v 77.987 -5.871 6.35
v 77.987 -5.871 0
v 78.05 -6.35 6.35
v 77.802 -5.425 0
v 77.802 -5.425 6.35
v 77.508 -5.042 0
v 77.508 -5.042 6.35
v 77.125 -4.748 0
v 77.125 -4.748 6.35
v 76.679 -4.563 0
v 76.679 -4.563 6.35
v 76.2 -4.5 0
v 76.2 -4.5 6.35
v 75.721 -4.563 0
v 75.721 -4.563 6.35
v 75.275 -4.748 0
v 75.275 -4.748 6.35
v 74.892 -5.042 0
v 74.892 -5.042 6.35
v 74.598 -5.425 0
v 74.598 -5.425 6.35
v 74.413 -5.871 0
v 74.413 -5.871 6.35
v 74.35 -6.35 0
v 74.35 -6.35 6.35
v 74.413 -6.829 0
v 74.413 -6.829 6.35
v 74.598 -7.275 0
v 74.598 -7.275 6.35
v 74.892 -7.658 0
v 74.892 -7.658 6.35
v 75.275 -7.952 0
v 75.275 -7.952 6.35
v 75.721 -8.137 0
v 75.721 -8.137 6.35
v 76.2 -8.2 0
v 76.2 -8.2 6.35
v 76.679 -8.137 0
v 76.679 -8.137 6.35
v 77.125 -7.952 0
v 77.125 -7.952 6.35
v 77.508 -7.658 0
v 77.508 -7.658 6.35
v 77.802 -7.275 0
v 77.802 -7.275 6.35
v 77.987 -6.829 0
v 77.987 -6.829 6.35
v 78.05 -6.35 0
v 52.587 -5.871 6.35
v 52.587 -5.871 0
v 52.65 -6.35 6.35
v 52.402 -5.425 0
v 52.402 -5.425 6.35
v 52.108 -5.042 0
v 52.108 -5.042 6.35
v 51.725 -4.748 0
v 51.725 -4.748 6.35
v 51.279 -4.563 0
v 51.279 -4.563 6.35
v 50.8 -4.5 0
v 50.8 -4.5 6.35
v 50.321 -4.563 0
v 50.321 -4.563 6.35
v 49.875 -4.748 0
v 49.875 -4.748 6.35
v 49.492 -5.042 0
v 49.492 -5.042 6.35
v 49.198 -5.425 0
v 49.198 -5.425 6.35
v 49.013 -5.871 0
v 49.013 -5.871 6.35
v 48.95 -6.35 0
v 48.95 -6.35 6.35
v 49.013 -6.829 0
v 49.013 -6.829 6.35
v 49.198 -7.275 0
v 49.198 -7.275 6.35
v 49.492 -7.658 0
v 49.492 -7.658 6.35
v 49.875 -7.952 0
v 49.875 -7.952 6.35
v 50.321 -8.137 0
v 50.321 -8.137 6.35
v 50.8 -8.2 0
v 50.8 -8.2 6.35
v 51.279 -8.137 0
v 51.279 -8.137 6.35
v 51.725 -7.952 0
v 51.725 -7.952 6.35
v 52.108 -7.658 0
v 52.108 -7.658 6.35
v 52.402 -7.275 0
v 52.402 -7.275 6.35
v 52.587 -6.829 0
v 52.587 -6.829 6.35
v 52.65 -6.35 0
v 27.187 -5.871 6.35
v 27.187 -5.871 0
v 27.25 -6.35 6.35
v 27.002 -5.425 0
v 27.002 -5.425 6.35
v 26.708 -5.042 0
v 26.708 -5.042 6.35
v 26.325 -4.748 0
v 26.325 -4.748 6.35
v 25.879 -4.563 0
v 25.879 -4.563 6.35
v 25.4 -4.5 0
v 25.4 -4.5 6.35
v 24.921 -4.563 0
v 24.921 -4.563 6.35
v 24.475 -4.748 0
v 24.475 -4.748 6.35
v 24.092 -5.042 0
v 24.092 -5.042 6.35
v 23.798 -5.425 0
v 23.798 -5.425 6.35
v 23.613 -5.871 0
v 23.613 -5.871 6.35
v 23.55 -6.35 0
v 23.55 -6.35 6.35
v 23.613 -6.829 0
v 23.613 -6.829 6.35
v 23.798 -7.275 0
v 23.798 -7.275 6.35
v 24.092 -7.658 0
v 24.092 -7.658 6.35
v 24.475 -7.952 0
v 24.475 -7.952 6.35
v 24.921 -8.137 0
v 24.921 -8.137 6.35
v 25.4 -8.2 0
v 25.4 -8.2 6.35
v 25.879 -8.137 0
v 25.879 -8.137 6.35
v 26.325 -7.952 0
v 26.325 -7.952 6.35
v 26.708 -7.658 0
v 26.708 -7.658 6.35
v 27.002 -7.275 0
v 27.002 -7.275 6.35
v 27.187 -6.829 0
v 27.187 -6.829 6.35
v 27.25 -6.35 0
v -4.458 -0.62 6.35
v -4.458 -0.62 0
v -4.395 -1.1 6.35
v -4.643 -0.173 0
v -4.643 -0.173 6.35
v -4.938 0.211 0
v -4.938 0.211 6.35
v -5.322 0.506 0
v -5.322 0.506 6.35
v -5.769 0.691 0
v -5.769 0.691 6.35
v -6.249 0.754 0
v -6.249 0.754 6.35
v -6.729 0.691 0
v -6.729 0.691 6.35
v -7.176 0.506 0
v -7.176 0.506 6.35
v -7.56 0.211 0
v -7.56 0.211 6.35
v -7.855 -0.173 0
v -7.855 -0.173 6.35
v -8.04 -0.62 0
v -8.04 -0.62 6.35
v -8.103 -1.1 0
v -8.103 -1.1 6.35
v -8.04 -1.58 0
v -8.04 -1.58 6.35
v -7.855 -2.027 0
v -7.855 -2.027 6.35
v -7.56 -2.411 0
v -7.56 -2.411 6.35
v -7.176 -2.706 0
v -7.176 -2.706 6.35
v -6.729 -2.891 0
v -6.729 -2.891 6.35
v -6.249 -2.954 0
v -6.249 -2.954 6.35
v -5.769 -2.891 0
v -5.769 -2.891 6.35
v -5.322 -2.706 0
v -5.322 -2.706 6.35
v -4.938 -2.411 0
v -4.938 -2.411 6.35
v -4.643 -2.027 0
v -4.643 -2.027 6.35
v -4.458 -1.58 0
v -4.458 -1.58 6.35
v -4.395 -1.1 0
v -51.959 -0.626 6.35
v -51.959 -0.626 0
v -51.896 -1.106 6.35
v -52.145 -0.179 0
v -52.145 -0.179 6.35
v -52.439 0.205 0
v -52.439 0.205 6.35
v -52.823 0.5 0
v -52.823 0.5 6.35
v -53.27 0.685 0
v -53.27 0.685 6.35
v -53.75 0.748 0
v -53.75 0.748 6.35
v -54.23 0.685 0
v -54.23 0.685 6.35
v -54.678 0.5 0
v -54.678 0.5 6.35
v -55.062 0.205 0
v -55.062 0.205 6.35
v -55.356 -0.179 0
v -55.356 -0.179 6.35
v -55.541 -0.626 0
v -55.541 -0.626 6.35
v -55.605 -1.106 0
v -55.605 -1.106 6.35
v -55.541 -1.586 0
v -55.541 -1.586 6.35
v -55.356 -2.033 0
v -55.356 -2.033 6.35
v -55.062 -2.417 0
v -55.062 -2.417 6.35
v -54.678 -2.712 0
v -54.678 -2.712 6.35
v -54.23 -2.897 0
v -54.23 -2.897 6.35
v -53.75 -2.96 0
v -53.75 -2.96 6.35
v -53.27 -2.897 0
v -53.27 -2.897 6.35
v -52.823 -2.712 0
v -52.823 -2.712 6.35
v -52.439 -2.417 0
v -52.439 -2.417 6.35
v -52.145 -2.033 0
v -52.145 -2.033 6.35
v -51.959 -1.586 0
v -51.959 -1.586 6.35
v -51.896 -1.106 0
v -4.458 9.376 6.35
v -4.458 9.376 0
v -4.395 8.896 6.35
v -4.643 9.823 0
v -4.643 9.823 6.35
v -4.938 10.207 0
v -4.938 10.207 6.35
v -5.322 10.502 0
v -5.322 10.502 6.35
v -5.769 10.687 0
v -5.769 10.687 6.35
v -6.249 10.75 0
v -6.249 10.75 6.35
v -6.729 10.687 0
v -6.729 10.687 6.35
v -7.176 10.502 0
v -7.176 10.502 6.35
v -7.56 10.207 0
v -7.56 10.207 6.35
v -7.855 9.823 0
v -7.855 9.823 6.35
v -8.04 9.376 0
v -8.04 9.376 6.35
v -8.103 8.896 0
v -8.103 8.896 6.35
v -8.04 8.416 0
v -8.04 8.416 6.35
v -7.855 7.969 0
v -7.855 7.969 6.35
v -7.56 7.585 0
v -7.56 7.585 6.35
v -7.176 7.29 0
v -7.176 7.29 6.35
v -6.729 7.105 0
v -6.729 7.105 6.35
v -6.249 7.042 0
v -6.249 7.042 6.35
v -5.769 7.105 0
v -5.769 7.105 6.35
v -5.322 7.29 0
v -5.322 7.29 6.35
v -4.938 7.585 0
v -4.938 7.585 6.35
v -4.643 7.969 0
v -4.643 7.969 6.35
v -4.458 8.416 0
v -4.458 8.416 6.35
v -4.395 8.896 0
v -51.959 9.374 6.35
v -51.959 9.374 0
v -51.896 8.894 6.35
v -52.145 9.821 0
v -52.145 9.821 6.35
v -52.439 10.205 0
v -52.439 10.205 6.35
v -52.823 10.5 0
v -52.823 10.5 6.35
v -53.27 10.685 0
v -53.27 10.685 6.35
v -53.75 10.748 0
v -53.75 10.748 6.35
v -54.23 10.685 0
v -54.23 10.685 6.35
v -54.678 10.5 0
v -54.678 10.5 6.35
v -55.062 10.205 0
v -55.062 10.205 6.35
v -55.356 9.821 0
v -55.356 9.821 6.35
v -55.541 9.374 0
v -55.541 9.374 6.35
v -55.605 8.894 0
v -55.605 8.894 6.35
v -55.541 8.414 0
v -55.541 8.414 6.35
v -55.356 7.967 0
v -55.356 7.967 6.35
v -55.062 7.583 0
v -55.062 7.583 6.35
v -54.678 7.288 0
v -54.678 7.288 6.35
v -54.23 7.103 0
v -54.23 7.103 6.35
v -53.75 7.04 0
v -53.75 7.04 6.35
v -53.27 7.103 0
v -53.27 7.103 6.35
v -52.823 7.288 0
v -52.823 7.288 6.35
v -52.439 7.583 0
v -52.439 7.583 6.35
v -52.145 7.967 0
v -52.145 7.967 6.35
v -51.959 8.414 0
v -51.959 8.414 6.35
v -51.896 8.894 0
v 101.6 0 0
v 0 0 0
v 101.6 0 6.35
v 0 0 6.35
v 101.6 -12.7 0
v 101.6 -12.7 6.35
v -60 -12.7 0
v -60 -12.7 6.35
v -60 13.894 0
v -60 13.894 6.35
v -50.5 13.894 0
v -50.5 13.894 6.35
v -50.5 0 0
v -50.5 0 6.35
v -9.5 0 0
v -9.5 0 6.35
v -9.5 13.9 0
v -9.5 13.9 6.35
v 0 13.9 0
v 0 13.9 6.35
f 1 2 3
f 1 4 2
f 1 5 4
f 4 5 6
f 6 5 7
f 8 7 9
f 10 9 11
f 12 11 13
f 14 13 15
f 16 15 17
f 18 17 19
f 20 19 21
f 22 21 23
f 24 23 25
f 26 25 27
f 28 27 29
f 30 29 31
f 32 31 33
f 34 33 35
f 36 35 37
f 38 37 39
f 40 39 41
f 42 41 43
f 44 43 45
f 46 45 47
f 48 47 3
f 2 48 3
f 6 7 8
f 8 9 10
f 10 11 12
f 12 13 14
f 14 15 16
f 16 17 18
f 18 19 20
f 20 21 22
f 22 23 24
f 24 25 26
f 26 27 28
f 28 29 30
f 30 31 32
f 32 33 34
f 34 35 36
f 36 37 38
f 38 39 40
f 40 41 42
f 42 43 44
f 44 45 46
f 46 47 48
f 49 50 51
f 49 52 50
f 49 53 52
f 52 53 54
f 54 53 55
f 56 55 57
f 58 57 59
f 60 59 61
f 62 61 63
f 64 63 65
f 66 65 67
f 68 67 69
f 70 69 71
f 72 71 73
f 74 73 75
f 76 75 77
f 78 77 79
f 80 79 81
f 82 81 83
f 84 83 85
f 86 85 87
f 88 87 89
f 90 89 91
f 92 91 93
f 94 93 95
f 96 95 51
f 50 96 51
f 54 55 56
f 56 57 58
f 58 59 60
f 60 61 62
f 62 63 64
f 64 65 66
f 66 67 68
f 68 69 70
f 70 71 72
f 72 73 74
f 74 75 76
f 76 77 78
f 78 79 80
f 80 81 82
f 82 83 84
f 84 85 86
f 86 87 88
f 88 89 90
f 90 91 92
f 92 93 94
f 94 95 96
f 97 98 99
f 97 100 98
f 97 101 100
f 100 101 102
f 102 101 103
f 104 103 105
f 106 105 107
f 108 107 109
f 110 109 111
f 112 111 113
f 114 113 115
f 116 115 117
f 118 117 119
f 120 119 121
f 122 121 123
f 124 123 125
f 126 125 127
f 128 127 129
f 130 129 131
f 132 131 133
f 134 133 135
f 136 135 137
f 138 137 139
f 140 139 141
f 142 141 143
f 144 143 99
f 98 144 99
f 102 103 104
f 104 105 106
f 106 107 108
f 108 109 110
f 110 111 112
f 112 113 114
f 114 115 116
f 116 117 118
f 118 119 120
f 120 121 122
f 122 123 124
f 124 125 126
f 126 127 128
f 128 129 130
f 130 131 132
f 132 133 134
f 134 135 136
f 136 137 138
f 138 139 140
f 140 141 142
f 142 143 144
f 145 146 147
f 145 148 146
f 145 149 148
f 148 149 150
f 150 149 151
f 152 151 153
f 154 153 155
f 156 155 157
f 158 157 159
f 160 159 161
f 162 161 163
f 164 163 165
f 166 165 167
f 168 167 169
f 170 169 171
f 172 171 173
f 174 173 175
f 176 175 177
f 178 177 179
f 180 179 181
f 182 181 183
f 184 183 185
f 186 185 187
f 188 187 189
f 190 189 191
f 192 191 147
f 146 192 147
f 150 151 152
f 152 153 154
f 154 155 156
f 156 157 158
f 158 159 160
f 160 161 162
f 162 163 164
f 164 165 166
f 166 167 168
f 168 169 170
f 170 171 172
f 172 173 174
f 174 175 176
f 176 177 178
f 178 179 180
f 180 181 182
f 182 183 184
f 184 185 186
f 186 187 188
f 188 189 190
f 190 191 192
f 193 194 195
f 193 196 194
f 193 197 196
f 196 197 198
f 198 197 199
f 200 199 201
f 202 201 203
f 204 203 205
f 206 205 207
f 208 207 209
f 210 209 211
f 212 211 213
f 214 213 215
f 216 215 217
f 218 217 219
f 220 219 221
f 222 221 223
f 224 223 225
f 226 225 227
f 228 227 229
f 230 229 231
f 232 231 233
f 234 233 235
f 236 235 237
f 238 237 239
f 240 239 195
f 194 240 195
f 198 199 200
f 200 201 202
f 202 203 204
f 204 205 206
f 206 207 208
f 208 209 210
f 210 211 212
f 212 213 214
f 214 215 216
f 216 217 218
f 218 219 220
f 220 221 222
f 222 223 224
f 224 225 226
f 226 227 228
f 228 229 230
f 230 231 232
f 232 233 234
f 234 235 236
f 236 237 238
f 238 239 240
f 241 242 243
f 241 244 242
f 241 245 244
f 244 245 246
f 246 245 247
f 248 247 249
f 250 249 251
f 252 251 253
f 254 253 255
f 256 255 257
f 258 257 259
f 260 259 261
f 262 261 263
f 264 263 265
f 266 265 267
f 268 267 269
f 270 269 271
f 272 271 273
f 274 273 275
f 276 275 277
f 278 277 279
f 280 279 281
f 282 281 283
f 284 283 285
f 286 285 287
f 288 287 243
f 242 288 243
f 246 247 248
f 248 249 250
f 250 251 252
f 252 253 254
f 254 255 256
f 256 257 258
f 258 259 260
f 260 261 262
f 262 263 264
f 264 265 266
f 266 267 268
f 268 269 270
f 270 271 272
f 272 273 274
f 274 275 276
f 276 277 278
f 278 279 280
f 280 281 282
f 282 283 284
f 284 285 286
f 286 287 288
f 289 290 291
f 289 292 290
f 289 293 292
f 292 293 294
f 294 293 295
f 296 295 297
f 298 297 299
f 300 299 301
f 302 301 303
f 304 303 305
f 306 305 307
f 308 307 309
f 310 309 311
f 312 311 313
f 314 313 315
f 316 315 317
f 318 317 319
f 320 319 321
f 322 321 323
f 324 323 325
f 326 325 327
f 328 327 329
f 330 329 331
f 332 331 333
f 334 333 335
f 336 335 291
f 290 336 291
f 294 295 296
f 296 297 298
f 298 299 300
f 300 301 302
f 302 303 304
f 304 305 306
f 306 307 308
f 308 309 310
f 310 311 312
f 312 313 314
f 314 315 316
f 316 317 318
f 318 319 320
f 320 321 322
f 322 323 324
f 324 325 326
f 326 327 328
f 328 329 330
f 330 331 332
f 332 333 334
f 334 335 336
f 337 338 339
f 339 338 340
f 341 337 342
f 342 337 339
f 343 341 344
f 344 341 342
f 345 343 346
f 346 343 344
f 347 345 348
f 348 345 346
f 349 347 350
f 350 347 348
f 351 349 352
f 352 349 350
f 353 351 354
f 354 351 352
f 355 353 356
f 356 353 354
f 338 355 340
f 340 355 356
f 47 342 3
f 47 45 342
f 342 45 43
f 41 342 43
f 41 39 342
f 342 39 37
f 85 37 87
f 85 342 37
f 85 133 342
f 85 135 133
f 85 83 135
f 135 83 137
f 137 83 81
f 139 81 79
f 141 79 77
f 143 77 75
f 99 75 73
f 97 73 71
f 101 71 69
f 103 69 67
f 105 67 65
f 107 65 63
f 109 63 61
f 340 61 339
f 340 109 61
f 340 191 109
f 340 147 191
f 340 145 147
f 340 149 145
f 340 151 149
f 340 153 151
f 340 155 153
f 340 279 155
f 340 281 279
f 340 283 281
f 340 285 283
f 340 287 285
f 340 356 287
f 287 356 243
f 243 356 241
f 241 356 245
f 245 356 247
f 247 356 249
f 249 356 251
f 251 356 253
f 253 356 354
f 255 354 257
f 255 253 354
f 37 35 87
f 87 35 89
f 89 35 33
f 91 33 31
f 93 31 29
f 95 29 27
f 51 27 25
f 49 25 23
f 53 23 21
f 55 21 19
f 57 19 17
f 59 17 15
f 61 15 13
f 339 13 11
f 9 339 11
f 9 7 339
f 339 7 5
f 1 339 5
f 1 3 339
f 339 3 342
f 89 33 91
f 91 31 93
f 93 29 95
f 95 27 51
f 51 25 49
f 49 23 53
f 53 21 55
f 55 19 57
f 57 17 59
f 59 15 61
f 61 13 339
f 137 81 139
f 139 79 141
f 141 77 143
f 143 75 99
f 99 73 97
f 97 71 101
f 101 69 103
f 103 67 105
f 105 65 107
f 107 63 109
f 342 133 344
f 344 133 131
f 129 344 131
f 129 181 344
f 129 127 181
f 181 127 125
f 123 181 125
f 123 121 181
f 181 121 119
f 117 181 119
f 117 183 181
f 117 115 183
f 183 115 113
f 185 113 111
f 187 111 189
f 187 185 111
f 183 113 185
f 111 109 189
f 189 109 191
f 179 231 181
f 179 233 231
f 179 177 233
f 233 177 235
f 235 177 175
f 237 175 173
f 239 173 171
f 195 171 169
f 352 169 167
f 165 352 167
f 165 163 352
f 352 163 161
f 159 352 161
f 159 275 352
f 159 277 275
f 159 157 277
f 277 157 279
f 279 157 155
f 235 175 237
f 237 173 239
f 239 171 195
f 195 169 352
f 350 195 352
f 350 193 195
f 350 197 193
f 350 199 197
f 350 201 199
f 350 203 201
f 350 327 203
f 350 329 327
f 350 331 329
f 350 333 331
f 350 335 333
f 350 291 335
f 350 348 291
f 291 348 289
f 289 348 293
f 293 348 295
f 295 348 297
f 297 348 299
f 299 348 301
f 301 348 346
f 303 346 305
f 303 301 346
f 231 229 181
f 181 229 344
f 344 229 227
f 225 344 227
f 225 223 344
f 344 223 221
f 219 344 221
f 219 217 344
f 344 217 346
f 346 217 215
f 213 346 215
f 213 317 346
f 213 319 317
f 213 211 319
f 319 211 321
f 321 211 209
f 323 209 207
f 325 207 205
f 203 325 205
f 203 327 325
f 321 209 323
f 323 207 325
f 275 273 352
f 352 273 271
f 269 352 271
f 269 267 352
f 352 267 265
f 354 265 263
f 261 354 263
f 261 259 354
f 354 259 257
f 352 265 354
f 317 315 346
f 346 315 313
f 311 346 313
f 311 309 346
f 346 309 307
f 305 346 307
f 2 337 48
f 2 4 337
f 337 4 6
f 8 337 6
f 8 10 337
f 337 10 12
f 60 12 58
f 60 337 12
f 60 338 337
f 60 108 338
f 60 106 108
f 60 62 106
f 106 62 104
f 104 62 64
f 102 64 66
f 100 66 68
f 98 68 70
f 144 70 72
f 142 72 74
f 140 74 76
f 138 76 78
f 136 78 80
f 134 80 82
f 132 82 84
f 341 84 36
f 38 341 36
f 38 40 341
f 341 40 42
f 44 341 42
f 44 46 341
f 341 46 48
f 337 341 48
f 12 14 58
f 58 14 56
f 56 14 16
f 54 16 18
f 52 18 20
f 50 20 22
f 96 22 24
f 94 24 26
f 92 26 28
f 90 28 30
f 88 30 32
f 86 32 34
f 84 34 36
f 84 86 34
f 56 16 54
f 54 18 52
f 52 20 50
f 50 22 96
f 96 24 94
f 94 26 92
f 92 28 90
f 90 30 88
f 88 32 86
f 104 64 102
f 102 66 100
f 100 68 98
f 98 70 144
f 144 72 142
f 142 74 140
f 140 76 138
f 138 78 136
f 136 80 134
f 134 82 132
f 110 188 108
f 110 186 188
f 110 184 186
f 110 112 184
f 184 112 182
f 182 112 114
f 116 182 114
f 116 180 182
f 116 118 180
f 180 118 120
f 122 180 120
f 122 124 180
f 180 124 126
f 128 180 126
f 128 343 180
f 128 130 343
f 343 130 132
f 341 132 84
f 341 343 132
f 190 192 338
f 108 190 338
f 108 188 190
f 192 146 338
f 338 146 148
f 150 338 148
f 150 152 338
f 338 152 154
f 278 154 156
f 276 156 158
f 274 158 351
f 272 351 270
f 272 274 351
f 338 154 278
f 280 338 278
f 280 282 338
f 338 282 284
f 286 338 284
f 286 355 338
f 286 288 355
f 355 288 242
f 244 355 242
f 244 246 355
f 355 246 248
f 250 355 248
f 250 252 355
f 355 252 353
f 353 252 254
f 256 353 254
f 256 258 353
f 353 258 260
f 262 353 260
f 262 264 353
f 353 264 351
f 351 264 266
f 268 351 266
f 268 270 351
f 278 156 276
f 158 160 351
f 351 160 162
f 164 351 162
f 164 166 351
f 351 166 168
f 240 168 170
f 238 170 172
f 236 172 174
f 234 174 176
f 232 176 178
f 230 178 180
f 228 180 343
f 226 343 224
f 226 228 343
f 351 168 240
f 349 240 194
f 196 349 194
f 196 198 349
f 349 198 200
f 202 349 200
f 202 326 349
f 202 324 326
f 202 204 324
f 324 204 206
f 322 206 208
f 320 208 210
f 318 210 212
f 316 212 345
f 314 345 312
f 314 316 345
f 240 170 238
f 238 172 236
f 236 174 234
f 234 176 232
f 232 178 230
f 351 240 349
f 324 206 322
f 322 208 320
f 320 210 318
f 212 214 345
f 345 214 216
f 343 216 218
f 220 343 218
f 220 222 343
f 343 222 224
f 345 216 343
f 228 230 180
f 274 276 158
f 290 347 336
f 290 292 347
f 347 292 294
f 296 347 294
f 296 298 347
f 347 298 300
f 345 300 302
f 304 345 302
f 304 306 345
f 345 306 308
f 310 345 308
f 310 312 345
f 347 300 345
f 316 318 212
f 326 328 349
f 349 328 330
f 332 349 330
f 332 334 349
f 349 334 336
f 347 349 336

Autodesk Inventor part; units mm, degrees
ref_plane "YZ Plane" through (0, 0, 0) normal (1, 0, 0) x (0, 1, 0)
ref_plane "XZ Plane" through (0, 0, 0) normal (0, 1, 0) x (-1, 0, 0)
ref_plane "XY Plane" through (0, 0, 0) normal (0, 0, 1) x (1, 0, 0)
sketch "Sketch1" plane through (0, 0, 0) normal (0, 0, 1) x (1, 0, 0)
  line L0 (101.6, 0) -> (101.6, -12.7)
  line L1 (101.6, -12.7) -> (0, -12.7)
  line L2 (50.8, 0) -> (0, 0)
  line L3 (50.8, 0) -> (101.6, 0)
  line L4 (0, -12.7) -> (50.8, -12.7)
  line L5 (50.8, -12.7) -> (101.6, -12.7)
  circle A0 centre (25.4, -6.35) radius 1.85
  circle A1 centre (50.8, -6.35) radius 1.85
  circle A2 centre (76.2, -6.35) radius 1.85
  line L6 (0, -12.7) -> (-60, -12.7)
  line L7 (-60, -12.7) -> (-60, 0)
  line L8 (-9.5, 0) -> (-9.5, 13.9)
  line L9 (-9.5, 13.9) -> (0, 13.9)
  line L10 (0, 13.9) -> (0, 0)
  line L11 (-50.5004, 13.8938) -> (-60, 13.8938)
  line L12 (-60, 13.8938) -> (-60, 0)
  line L13 (-50.5004, 13.8938) -> (-53.7504, 13.8938)
  circle A3 centre (-53.7504, 8.8938) radius 1.8542
  line L14 (-9.5, 13.9) -> (-6.2488, 13.9)
  line L15 (-9.5, 8.8962) -> (-9.5, 13.9)
  circle A4 centre (-6.2488, 8.8962) radius 1.8542
  line L16 (-53.7504, 13.8938) -> (-50.5004, 13.8938)
  circle A5 centre (-53.7504, -1.1062) radius 1.8542
  circle A6 centre (-6.2488, -1.1) radius 1.8542
  line L17 (-9.5, 0) -> (-50.5004, 0)
  line L18 (-50.5004, 13.8938) -> (-50.5004, 0)
  line L19 (0, 0) -> (0, -12.7)
  line L20 (0, 0) -> (101.6, 0)
  line L21 (101.6, 0) -> (101.6, -12.7)
  line L22 (101.6, -12.7) -> (0, -12.7)
  line L23 (-60, 13.8938) -> (-60, -12.7)
  line L24 (-60, -12.7) -> (0, -12.7)
  line L25 (0, -12.7) -> (0, 13.9)
  line L26 (0, 13.9) -> (-9.5, 13.9)
  line L27 (-9.5, 0) -> (-50.5004, 0)
  line L28 (-50.5004, 13.8938) -> (-60, 13.8938)
  dimension "d0" = 101.6
  dimension "d1" = 12.7
  dimension "d2" = 3.7
  dimension "d3" = 3.7
  dimension "d4" = 3.7
  dimension "d5" = 60
  dimension "d6" = 9.5
  dimension "d7" = 13.9
  dimension "d8" = 9.4996
  dimension "d9" = 13.8938
  dimension "d12" = 3.7084
  dimension "d15" = 3.7084
  dimension "d17" = 3.7084
  dimension "d19" = 3.7084
extrude "Extrusion1" add sketch "Sketch1" along normal blind 6.35
properties part number "flapperservomount"
